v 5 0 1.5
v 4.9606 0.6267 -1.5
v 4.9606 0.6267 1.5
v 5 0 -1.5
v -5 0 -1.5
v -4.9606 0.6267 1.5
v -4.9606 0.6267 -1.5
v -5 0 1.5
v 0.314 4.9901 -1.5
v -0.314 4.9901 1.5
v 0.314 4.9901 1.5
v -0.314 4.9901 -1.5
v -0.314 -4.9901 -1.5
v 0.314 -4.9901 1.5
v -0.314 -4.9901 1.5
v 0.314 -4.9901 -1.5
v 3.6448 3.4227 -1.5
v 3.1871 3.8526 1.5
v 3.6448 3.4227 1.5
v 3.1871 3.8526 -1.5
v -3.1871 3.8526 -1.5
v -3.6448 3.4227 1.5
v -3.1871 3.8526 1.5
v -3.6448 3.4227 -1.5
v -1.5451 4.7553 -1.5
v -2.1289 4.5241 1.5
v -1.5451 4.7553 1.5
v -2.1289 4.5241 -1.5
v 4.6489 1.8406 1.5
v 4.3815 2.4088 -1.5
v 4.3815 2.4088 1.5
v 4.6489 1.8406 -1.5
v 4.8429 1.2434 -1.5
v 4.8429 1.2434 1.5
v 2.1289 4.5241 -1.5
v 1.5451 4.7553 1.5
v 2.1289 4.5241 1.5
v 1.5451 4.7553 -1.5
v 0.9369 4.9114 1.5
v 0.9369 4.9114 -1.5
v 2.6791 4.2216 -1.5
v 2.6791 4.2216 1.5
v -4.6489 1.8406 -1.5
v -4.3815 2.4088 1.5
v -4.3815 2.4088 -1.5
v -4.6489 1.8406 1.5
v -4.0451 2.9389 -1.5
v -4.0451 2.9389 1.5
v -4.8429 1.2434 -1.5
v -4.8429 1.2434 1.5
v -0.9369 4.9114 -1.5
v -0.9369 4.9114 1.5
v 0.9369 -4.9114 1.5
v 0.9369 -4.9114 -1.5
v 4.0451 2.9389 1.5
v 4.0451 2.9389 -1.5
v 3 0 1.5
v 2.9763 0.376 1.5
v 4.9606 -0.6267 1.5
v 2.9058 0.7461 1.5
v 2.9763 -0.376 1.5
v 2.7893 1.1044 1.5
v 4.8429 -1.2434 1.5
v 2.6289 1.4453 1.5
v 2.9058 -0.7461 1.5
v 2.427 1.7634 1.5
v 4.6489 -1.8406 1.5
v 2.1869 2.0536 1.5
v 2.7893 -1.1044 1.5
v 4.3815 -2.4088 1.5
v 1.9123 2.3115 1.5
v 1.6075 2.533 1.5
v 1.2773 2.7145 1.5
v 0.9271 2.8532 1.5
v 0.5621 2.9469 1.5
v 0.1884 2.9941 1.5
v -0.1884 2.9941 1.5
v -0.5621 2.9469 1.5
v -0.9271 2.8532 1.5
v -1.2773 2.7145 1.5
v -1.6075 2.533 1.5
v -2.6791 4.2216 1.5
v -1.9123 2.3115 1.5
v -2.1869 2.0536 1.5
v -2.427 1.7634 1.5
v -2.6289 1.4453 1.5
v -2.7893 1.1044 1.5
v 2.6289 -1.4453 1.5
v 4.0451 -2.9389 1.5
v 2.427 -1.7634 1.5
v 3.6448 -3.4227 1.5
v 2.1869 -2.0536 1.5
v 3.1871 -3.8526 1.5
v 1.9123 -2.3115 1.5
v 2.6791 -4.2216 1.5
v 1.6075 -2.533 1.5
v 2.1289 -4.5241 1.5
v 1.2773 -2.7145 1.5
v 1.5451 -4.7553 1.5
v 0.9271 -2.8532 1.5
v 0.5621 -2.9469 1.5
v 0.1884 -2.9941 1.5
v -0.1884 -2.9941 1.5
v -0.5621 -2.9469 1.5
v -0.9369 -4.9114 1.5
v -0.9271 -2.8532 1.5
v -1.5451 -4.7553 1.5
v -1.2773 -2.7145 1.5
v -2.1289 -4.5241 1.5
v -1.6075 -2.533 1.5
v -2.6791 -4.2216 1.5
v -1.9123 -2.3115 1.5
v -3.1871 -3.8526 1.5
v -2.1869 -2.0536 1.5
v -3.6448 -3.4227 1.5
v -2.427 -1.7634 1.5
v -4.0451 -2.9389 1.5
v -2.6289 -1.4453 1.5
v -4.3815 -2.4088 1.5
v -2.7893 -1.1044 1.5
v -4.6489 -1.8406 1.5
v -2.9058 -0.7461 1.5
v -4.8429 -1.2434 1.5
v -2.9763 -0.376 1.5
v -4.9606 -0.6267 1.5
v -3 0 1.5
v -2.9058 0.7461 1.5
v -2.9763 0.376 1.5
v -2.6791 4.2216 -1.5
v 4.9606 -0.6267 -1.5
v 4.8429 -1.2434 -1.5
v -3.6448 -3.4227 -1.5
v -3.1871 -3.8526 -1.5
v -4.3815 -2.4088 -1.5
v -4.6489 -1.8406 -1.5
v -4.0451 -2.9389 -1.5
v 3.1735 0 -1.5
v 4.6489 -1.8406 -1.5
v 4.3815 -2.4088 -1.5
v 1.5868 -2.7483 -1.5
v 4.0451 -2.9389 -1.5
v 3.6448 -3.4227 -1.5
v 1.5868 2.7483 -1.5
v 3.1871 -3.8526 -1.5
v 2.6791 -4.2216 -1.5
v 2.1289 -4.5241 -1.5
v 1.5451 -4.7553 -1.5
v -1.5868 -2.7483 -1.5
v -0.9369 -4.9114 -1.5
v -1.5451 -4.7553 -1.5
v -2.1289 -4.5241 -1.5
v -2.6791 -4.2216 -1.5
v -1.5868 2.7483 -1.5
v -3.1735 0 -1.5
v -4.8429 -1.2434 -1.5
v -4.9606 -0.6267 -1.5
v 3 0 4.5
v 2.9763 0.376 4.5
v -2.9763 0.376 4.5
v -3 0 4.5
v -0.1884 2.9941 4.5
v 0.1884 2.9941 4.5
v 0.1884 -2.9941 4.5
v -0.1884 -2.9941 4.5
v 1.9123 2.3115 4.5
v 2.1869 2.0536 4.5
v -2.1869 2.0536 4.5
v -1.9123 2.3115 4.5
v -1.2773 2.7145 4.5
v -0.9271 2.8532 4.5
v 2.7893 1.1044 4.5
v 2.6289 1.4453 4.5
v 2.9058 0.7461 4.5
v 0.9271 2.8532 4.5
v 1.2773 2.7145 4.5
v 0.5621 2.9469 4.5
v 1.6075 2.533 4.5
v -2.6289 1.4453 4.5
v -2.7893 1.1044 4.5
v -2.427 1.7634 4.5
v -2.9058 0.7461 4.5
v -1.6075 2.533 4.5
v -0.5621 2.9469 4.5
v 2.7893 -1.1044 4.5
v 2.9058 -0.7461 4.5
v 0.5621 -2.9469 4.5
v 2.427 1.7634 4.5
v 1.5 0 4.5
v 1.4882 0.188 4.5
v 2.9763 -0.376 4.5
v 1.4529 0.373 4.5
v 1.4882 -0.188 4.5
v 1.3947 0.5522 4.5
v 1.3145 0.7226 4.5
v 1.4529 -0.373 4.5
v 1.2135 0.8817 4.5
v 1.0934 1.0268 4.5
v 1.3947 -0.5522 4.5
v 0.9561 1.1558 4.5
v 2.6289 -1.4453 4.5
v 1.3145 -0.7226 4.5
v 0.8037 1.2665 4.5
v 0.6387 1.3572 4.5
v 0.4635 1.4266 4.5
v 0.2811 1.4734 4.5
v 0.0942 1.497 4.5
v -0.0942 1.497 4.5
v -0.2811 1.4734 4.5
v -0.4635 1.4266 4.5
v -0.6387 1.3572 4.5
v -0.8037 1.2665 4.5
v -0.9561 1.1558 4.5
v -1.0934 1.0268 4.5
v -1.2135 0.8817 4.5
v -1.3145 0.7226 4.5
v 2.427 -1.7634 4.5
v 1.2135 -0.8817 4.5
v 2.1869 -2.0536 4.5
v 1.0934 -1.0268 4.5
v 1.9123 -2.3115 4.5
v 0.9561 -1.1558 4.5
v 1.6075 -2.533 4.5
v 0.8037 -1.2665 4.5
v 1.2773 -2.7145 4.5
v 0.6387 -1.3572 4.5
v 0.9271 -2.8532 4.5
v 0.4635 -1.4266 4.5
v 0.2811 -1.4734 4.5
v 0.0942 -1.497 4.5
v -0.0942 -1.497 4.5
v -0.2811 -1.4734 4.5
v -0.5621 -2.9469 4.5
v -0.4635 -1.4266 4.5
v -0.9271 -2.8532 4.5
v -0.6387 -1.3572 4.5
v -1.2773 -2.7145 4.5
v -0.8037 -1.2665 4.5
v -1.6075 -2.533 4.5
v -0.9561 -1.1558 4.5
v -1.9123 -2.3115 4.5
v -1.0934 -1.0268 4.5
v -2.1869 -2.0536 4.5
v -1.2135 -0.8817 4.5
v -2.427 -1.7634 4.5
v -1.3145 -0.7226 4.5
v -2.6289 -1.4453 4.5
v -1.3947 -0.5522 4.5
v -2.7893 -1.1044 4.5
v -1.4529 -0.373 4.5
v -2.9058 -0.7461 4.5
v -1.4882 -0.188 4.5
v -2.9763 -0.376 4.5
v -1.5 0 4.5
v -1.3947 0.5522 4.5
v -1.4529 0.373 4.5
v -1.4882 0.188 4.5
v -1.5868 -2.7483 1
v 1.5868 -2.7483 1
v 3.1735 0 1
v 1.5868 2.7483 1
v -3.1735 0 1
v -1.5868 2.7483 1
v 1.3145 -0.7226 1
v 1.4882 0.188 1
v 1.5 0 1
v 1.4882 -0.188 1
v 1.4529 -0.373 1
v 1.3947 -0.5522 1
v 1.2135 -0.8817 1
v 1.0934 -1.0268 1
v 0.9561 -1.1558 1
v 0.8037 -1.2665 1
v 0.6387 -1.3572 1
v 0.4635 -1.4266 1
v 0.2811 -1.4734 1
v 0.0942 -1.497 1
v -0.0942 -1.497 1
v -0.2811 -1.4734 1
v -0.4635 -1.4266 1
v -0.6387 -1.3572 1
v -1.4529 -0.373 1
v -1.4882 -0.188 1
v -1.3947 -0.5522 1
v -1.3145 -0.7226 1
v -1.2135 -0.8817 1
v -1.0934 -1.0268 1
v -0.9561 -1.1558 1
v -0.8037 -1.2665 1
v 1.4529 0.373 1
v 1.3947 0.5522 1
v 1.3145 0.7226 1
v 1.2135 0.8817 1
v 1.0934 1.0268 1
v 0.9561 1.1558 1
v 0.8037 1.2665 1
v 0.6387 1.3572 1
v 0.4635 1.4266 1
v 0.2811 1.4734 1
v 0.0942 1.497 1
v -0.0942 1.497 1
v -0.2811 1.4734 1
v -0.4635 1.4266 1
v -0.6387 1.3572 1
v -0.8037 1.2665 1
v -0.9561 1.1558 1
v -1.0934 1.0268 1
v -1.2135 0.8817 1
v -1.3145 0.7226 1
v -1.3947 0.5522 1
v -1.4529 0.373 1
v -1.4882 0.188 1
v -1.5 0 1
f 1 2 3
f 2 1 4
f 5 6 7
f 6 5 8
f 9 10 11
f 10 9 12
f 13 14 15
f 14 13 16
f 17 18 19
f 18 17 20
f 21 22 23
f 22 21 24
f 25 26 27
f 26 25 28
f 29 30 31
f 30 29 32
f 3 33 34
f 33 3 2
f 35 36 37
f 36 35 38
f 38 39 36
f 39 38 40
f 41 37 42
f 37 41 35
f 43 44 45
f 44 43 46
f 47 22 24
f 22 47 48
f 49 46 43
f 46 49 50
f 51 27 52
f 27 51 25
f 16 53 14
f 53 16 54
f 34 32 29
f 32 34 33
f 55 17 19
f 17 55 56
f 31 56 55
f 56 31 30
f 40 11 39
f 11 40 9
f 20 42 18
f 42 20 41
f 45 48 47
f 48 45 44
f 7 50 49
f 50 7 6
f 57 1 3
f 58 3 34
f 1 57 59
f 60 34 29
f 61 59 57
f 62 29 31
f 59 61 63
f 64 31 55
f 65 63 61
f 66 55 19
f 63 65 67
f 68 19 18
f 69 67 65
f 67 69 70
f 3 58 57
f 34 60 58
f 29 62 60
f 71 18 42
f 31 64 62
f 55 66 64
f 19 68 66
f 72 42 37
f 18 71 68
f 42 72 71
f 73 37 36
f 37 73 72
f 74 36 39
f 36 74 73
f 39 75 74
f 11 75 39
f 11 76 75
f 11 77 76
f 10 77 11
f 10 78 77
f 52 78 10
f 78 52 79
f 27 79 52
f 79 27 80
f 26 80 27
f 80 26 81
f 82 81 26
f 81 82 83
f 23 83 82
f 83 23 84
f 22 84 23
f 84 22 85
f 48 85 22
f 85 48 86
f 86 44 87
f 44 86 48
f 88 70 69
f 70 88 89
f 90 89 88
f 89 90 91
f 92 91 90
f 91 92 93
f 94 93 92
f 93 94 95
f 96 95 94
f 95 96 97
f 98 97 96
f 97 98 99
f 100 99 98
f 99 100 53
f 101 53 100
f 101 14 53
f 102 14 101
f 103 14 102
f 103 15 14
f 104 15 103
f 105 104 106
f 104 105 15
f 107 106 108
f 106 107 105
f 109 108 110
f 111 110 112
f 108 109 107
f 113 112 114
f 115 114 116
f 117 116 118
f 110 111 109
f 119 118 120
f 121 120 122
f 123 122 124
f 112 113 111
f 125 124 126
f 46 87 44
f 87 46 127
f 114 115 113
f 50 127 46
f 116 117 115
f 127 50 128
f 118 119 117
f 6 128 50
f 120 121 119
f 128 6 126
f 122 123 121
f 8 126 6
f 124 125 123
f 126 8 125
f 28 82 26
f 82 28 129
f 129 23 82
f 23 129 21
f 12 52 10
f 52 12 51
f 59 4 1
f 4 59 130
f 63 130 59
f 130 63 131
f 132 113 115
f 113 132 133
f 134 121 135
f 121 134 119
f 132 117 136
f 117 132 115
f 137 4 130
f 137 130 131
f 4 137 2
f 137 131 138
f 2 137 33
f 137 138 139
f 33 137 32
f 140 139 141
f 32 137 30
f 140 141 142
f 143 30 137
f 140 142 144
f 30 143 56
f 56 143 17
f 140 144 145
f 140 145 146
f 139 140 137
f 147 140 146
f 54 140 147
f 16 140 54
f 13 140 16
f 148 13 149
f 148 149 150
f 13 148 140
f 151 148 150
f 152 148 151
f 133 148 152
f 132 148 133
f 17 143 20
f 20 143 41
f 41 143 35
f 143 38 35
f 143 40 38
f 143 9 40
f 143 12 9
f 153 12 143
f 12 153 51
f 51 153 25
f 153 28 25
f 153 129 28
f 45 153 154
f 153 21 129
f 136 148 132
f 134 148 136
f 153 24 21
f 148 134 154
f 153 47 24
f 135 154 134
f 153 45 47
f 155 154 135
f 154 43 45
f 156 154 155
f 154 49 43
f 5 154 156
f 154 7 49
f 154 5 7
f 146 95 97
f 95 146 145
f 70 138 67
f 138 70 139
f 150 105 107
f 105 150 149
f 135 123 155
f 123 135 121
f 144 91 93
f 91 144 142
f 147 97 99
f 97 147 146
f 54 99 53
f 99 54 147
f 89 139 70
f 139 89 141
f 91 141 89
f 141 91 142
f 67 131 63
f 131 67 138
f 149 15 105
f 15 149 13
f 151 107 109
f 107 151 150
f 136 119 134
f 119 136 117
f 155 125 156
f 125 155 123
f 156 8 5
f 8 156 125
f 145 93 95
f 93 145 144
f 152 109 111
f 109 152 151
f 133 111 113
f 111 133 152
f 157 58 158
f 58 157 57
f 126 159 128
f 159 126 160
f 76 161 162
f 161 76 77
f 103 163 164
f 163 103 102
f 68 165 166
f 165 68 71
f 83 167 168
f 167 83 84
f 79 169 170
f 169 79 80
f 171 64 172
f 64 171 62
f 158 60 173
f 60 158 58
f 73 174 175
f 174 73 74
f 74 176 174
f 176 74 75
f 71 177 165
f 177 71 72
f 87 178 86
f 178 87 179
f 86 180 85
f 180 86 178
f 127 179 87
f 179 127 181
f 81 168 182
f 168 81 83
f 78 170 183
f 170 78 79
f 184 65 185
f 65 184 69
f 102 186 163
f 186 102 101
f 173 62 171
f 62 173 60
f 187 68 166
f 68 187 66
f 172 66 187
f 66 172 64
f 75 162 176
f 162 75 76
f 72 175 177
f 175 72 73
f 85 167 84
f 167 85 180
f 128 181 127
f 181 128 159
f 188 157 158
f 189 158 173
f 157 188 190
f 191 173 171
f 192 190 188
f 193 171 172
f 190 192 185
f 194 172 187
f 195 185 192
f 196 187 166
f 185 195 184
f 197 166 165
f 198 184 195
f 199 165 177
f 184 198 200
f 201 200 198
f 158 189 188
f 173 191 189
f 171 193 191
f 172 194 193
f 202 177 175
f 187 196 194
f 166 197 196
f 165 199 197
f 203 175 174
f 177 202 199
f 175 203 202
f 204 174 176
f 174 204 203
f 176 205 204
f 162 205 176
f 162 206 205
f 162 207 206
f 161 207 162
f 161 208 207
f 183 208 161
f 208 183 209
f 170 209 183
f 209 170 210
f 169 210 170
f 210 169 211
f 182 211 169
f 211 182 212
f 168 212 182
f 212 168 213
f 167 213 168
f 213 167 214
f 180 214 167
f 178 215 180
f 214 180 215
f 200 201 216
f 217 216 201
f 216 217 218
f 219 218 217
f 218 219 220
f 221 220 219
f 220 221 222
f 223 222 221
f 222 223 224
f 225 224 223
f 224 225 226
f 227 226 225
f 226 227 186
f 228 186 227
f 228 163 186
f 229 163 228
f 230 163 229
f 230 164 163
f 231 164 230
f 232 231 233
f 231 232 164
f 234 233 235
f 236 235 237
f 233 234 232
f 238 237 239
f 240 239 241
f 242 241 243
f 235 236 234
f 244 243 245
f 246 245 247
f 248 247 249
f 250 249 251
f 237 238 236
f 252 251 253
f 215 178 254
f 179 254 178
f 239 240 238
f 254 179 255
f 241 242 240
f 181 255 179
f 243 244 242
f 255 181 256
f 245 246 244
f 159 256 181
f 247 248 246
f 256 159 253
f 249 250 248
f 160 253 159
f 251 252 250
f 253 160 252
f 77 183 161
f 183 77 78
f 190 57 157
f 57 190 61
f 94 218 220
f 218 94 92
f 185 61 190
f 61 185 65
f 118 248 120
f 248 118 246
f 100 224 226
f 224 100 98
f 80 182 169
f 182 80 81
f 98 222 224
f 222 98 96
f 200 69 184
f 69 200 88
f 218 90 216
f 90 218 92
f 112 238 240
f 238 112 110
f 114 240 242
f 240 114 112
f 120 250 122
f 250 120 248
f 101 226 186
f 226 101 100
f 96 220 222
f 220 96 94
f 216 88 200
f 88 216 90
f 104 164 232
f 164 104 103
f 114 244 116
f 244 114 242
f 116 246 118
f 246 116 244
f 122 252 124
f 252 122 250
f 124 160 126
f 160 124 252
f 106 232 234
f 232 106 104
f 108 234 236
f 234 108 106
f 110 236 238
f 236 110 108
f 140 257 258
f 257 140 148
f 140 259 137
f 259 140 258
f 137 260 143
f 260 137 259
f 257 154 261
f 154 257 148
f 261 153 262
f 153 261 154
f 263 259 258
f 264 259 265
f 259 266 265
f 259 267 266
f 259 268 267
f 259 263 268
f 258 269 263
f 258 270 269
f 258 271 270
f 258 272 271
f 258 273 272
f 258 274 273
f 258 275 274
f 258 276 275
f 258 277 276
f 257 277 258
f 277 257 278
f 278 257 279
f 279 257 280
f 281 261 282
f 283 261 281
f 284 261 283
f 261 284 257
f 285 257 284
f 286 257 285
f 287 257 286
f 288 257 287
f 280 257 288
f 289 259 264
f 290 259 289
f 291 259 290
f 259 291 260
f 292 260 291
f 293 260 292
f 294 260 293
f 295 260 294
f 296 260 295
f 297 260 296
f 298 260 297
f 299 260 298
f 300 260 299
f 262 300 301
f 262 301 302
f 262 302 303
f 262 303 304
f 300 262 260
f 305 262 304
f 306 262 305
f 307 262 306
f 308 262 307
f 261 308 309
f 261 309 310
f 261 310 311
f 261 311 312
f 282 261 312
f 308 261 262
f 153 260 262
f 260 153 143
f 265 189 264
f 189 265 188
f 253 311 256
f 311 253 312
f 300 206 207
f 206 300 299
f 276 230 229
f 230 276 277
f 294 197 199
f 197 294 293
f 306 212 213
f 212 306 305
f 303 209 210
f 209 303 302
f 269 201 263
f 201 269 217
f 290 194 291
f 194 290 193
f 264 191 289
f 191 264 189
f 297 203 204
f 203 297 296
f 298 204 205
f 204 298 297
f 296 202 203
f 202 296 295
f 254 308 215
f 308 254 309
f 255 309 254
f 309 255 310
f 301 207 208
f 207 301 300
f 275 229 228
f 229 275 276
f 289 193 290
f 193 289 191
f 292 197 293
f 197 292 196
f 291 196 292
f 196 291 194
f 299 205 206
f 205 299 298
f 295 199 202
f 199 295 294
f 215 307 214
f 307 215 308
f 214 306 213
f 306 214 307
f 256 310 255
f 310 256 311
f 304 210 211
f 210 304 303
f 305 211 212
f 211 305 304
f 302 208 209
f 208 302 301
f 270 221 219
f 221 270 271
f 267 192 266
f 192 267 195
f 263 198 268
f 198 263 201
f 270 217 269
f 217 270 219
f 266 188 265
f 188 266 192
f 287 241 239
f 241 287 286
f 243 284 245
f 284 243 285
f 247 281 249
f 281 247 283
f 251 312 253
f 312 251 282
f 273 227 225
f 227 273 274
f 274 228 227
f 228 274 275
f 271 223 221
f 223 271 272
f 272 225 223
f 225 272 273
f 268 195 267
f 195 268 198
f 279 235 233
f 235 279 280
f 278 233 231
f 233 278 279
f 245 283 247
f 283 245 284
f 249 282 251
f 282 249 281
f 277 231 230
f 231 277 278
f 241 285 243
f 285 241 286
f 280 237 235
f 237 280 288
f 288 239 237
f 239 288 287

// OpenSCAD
$fn = 50;


difference() {
	union() {
		translate(v = [0, 0, -1.5000000000]) {
			cylinder(h = 3, r = 5.0000000000);
		}
		translate(v = [0, 0, -1.5000000000]) {
			cylinder(h = 6, r = 3.0000000000);
		}
	}
	union() {
		translate(v = [0, 0, -1.5000000000]) {
			rotate(a = [0, 0, 0]) {
				difference() {
					union() {
						linear_extrude(height = 2.5000000000) {
							polygon(points = [[3.1735000000, 0.0000000000], [1.5867500000, 2.7483316189], [-1.5867500000, 2.7483316189], [-3.1735000000, 0.0000000000], [-1.5867500000, -2.7483316189], [1.5867500000, -2.7483316189]]);
						}
					}
					union();
				}
			}
		}
		translate(v = [0, 0, -50.0000000000]) {
			cylinder(h = 100, r = 1.5000000000);
		}
	}
}
